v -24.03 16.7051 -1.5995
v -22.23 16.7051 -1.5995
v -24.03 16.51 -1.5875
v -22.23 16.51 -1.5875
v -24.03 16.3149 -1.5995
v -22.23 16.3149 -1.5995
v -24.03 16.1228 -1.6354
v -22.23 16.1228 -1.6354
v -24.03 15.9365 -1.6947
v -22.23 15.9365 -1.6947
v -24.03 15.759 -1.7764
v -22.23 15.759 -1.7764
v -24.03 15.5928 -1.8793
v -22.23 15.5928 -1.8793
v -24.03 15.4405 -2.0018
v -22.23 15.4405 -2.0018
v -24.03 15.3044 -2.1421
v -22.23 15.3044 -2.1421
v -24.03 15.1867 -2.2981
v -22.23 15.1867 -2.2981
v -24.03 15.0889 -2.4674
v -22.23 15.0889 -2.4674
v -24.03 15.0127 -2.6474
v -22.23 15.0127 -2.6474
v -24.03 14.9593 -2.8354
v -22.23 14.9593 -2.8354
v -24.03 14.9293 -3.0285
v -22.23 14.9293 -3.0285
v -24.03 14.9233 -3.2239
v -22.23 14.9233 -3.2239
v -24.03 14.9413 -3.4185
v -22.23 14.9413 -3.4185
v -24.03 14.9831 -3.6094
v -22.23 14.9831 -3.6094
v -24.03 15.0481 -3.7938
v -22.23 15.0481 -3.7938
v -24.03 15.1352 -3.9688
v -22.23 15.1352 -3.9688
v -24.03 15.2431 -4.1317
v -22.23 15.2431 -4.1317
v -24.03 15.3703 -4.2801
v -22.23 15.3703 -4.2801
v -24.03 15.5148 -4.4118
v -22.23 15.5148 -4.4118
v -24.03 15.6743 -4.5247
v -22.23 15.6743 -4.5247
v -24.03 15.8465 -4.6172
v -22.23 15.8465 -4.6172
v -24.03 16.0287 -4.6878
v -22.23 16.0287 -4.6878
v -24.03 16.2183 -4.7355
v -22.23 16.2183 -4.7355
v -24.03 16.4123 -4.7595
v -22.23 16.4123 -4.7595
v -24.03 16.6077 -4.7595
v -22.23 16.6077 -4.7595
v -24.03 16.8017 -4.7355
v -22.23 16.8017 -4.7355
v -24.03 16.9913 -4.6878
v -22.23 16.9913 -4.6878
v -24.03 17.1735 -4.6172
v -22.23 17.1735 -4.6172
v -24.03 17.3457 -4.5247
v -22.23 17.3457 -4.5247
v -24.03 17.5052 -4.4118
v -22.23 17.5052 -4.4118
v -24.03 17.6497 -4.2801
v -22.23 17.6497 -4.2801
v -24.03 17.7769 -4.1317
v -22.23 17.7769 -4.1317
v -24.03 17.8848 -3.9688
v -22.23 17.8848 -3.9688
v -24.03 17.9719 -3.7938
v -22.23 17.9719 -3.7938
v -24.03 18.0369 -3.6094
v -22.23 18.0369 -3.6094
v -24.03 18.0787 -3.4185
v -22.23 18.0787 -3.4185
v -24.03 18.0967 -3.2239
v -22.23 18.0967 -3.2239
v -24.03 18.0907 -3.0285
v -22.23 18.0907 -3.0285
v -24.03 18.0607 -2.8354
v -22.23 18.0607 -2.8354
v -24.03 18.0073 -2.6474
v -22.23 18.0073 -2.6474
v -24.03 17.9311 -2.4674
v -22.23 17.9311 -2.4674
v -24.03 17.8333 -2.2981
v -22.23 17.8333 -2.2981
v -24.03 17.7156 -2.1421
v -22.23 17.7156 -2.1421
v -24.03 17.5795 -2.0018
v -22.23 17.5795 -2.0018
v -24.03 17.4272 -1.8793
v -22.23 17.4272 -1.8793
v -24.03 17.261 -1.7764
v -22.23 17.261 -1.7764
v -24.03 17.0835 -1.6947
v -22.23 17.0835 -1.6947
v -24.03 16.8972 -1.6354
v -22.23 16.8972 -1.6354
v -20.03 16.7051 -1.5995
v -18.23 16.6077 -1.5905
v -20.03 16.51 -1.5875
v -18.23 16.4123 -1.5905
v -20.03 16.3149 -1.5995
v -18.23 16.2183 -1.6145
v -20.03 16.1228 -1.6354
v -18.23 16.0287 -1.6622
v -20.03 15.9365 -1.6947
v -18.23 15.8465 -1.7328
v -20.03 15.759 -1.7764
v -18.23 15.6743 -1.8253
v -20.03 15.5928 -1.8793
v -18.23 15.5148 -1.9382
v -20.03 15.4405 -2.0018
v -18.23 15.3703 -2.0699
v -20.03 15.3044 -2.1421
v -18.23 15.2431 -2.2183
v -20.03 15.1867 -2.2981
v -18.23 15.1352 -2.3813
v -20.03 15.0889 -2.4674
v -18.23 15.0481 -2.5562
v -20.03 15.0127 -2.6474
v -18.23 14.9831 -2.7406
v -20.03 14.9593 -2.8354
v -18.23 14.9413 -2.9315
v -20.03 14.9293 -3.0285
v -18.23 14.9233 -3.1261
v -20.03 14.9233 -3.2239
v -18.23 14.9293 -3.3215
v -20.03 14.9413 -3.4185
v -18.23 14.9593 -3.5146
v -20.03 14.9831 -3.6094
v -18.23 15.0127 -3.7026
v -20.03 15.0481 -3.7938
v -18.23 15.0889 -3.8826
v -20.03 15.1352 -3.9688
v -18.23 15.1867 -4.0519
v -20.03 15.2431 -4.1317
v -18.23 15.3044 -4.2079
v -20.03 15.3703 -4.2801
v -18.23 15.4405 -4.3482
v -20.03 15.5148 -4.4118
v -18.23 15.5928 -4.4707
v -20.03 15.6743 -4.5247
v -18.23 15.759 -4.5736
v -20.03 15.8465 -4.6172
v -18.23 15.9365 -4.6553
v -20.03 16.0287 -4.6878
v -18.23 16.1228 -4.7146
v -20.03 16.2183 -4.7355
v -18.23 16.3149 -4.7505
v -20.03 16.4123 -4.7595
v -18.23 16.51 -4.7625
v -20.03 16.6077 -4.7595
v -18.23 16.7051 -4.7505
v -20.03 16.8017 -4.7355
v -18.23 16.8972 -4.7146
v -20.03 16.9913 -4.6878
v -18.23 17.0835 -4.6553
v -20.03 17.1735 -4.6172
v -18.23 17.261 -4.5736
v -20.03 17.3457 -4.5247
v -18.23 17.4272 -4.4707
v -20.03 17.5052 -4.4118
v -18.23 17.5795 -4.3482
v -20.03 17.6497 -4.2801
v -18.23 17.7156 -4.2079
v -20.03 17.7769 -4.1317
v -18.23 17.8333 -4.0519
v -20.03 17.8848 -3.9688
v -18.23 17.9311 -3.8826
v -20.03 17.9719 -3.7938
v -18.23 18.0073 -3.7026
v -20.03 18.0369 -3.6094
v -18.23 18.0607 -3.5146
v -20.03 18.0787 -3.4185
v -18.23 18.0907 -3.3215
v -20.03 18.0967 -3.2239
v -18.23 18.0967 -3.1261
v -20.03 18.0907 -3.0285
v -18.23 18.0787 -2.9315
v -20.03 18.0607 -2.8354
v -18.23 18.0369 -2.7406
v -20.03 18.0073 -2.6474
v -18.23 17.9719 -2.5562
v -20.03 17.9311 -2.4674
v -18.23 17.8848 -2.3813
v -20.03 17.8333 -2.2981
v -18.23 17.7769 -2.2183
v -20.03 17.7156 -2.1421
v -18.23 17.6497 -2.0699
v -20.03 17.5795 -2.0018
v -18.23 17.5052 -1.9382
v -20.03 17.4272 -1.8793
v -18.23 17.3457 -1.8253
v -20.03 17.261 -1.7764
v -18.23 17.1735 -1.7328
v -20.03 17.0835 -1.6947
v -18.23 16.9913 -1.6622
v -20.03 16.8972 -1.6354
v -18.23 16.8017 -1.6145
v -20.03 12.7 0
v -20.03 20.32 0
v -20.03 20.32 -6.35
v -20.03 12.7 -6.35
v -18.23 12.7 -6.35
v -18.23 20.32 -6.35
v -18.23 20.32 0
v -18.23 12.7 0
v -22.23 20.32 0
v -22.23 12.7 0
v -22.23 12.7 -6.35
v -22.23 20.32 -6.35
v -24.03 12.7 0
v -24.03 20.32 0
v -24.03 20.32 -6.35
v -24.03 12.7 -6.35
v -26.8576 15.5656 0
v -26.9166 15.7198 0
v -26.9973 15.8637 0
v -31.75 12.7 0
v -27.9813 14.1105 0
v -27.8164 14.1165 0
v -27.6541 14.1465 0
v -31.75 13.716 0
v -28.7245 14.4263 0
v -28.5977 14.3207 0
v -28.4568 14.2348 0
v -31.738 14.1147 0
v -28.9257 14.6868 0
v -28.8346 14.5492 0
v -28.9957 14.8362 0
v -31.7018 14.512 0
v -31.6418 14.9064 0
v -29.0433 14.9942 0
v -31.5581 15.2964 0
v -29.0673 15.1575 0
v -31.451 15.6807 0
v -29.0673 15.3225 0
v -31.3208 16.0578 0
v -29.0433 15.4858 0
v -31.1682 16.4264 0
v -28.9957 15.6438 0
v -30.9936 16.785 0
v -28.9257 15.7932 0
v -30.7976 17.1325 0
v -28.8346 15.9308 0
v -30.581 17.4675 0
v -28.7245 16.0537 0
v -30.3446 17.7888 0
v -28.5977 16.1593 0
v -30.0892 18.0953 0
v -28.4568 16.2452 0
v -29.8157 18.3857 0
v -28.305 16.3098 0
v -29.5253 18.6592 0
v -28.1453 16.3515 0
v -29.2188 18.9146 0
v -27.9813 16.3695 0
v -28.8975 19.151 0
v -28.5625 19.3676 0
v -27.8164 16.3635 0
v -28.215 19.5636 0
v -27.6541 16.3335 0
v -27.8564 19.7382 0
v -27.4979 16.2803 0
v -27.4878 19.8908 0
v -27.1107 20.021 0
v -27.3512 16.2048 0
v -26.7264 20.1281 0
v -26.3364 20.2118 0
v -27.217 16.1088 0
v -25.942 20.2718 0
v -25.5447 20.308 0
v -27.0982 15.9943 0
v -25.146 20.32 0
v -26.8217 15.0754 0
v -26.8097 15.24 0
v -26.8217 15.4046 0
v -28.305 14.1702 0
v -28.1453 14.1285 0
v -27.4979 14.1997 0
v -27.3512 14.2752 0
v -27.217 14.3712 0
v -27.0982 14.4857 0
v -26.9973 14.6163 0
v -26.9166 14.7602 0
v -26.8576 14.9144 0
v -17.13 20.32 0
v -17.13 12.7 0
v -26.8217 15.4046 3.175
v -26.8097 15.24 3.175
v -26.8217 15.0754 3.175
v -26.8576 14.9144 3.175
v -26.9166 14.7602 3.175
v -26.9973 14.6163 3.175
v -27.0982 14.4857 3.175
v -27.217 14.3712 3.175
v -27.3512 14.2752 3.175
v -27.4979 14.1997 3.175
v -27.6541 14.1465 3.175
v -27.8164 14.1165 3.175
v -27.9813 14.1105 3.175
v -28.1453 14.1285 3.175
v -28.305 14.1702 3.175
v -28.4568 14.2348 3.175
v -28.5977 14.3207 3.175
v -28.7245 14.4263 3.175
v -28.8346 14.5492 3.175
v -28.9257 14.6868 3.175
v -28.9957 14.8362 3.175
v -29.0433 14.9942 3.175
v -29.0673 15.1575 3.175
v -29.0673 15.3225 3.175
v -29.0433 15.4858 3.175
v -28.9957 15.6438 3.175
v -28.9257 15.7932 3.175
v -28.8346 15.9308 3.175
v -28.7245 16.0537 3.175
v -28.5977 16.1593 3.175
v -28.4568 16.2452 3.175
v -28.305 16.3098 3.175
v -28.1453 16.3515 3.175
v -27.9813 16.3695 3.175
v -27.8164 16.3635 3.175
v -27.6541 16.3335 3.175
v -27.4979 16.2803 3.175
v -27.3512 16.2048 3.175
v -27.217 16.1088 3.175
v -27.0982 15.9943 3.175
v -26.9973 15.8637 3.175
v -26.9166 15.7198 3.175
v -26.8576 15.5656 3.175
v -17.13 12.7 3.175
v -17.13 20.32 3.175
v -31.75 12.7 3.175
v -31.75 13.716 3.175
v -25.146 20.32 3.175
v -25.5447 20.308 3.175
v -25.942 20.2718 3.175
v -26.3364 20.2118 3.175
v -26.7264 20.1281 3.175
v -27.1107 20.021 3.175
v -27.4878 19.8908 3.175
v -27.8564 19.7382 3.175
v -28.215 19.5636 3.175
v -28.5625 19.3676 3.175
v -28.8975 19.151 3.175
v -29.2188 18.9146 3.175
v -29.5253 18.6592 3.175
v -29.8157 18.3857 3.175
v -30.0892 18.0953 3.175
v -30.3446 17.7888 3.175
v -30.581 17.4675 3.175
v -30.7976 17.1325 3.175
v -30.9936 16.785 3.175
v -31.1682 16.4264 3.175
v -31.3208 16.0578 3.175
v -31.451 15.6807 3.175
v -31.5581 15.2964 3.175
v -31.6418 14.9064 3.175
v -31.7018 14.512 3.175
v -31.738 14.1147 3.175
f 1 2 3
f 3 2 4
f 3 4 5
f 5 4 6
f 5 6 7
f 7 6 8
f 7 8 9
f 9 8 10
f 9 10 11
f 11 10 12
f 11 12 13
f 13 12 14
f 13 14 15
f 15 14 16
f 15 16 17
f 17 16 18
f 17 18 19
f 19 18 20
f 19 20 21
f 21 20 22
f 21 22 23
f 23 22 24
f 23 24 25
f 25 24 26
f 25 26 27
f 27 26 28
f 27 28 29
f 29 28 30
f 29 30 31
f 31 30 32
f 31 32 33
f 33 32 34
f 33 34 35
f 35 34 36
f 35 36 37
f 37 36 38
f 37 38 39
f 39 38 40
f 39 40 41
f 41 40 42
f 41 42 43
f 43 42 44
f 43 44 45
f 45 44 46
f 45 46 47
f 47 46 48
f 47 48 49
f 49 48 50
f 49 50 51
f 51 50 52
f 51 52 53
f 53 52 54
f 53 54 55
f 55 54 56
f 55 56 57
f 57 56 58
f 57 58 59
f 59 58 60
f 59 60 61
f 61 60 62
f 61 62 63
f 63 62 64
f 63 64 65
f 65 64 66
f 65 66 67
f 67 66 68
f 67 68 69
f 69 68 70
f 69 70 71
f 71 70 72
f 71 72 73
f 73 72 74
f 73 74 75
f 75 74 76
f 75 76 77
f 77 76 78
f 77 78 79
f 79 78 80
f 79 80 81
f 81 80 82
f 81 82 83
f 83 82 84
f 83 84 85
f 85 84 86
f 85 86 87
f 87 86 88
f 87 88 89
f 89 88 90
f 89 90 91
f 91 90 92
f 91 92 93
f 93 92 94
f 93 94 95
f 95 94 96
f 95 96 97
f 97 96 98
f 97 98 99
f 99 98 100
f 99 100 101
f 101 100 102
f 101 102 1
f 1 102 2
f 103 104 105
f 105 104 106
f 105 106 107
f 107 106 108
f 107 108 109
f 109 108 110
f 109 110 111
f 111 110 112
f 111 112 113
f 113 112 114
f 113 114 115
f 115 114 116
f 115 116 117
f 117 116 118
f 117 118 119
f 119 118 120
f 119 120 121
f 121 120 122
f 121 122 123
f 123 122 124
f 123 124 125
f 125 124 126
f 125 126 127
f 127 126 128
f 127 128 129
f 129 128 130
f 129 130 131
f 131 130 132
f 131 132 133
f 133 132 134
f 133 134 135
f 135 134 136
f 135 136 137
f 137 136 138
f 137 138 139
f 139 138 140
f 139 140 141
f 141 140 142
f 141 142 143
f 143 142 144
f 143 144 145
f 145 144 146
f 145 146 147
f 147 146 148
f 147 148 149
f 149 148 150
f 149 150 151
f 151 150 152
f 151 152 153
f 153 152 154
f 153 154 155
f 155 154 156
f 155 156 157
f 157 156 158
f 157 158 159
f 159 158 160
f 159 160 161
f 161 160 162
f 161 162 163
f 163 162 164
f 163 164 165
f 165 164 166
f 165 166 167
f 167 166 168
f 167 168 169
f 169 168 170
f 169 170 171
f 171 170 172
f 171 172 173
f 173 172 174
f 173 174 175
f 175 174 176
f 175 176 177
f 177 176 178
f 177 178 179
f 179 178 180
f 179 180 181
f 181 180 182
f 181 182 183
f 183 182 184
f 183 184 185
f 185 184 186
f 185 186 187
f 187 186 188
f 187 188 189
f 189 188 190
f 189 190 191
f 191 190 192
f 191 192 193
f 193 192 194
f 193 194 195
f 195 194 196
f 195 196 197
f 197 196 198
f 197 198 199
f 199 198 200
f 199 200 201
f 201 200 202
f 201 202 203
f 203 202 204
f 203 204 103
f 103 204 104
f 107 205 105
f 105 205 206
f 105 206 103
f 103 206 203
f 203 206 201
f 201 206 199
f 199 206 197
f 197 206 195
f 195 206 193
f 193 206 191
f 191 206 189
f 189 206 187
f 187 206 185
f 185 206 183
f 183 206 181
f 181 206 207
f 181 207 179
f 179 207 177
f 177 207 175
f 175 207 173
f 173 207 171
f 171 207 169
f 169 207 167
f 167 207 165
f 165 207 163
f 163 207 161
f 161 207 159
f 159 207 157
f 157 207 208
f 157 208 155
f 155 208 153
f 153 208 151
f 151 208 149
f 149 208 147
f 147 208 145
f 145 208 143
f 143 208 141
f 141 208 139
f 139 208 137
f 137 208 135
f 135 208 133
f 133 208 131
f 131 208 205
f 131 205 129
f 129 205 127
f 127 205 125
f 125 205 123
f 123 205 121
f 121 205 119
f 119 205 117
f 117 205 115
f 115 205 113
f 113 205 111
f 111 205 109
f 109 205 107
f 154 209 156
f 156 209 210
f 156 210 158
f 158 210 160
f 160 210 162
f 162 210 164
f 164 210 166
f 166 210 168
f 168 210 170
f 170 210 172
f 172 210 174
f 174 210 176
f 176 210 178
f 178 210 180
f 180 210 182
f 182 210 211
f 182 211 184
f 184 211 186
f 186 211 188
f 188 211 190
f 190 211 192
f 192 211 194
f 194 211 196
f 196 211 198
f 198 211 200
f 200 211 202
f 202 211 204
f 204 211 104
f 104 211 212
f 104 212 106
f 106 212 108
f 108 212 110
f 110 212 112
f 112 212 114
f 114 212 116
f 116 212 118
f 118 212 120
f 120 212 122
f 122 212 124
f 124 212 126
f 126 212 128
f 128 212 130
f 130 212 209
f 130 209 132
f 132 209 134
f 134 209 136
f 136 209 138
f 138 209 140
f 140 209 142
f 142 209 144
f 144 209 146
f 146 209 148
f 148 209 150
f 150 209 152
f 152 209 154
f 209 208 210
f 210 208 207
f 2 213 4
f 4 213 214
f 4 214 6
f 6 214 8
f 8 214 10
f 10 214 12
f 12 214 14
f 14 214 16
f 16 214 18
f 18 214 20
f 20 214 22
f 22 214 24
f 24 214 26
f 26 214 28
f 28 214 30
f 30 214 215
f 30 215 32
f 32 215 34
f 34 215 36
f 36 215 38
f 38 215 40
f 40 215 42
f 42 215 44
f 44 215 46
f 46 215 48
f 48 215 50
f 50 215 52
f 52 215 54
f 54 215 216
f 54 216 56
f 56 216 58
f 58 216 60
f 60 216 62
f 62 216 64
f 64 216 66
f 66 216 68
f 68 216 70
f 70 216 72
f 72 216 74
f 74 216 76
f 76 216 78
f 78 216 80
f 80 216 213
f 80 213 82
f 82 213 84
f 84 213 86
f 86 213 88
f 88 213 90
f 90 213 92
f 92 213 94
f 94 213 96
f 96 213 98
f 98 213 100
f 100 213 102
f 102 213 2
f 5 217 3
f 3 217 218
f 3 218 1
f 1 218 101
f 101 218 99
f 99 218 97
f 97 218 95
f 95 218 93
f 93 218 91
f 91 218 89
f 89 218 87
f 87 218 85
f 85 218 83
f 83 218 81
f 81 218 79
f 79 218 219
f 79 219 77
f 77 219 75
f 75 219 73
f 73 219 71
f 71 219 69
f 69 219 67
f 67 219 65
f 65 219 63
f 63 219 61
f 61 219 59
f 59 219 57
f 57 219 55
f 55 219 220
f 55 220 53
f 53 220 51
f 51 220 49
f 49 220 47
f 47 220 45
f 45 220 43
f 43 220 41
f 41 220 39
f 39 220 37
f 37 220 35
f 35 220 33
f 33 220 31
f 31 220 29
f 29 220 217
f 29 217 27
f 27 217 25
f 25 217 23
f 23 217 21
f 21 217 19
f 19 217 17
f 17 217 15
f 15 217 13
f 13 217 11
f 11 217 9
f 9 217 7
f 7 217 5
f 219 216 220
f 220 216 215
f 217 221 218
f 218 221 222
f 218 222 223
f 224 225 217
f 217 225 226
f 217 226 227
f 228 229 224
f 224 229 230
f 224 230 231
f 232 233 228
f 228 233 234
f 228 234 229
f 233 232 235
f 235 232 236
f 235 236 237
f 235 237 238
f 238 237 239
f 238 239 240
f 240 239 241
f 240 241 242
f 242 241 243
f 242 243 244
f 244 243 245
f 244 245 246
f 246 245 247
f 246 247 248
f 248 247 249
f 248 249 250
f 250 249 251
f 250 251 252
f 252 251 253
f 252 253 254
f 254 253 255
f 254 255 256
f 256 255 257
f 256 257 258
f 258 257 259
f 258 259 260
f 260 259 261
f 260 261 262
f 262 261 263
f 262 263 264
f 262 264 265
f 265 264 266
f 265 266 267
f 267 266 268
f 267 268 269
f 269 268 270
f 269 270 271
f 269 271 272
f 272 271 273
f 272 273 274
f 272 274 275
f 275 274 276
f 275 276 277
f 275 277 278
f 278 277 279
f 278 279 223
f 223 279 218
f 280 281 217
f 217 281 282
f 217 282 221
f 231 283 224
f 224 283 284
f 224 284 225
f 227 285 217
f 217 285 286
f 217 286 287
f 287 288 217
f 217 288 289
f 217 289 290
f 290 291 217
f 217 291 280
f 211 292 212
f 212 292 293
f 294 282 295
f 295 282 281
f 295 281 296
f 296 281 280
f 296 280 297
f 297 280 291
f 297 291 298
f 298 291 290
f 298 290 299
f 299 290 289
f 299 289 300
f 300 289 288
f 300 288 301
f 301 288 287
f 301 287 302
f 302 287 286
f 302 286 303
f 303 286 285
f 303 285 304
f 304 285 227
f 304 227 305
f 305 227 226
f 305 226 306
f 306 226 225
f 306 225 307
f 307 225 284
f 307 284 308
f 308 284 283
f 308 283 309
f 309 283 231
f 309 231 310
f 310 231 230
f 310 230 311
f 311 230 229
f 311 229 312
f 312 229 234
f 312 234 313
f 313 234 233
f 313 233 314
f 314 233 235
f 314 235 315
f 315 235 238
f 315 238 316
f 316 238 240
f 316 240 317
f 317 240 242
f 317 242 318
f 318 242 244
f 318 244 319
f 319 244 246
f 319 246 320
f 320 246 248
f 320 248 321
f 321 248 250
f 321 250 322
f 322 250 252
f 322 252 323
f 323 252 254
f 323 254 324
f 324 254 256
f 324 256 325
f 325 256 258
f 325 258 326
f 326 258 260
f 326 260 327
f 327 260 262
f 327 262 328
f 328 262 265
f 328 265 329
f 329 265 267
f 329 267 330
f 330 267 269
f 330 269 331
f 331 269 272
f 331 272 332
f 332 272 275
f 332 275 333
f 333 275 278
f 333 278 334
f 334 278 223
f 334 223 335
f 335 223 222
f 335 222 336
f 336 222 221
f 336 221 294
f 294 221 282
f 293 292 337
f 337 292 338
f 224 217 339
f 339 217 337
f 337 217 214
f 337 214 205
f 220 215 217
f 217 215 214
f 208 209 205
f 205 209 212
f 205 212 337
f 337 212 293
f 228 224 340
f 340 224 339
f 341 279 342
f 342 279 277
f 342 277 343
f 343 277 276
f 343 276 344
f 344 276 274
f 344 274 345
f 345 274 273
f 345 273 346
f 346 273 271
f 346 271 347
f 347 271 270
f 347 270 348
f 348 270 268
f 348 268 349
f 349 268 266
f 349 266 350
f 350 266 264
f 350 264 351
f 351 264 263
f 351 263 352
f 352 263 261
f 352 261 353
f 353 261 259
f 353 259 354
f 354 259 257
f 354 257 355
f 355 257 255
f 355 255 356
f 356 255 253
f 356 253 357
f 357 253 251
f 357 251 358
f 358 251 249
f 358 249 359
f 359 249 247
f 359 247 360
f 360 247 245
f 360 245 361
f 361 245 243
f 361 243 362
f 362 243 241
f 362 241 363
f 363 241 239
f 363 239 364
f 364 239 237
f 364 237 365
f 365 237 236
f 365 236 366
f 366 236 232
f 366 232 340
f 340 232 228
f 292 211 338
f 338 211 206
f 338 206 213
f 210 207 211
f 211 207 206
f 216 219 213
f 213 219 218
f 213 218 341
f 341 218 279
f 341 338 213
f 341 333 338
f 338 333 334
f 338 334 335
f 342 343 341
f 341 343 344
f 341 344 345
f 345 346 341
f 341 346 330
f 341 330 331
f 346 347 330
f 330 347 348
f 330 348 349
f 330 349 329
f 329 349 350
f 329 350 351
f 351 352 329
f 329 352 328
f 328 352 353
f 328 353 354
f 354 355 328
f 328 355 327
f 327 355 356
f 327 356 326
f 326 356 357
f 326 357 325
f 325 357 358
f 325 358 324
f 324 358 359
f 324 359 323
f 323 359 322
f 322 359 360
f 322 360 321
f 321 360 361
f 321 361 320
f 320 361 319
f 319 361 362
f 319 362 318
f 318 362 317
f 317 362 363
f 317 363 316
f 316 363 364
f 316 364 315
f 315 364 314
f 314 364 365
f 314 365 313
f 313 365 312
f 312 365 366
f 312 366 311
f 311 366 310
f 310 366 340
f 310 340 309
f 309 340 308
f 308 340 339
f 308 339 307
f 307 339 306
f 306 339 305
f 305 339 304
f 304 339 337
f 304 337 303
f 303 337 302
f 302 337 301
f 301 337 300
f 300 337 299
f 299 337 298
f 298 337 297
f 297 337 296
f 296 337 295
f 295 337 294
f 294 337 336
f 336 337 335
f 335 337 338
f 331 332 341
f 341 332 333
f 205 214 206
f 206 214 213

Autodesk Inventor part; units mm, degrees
ref_plane "YZ Plane" through (0, 0, 0) normal (1, 0, 0) x (0, 1, 0)
ref_plane "XZ Plane" through (0, 0, 0) normal (0, 1, 0) x (-1, 0, 0)
ref_plane "XY Plane" through (0, 0, 0) normal (0, 0, 1) x (1, 0, 0)
ref_plane "Work Plane2" through (0, 0, 0) normal (0, 0, 1) x (1, 0, 0)
sketch "Sketch3" plane through (0, 0, 0) normal (0, 0, 1) x (1, 0, 0)
  line L0 (-24.13, 20.32) -> (-25.146, 20.32) projected
  arc A0 (-25.146, 20.32) -> (-31.75, 13.716) centre (-25.146, 13.716) ccw projected
  line L1 (-31.75, 13.716) -> (-31.75, 6.096) projected
  arc A1 (-25.146, 12.7) -> (-31.75, 6.096) centre (-25.146, 6.096) ccw projected
  line L2 (-24.13, 12.7) -> (-25.146, 12.7) projected
  line L3 (-24.13, 20.32) -> (-24.13, 12.7) construction
  circle A2 centre (-27.94, 15.24) radius 1.1303 projected
  line L4 (-24.13, 12.7) -> (-17.13, 12.7)
  line L5 (-17.13, 12.7) -> (-17.13, 20.32)
  line L6 (-17.13, 20.32) -> (-24.13, 20.32)
  line L7 (-24.13, 20.32) -> (-24.13, 20.2414)
  line L8 (-24.13, 12.7) -> (-31.75, 12.7)
  point P0 (0, 0)
  dimension "d0" = 7
extrude "Extrusion1" add sketch "Sketch3" along normal blind 3.175 contours L6 L5 L4 L2 L8 L1 A0 L0
sketch "Sketch4" plane through (0, 0, 0) normal (0, 0, -1) x (-1, 0, 0)
  line L0 (20.13, 20.32) -> (20.13, 12.7) construction
  line L1 (22.13, 12.7) -> (22.13, 20.32) construction
  line L2 (17.13, 20.32) -> (25.146, 20.32) projected
  line L3 (31.75, 12.7) -> (17.13, 12.7) projected
  line L4 (20.03, 20.32) -> (18.23, 20.32)
  line L5 (18.23, 20.32) -> (18.23, 12.7)
  line L6 (18.23, 12.7) -> (20.03, 12.7)
  line L7 (20.03, 12.7) -> (20.03, 20.32)
  line L8 (22.23, 20.32) -> (24.03, 20.32)
  line L9 (24.03, 20.32) -> (24.03, 12.7)
  line L10 (24.03, 12.7) -> (22.23, 12.7)
  line L11 (22.23, 12.7) -> (22.23, 20.32)
  line L12 (24.13, 20.32) -> (24.13, 12.7) construction
  point P0 (0, 0)
  dimension "d3" = 0.1
  dimension "d4" = 0.1
  dimension "d6" = 0.1
extrude "Extrusion2" add sketch "Sketch4" along normal blind 6.35 contours L2 L7 L3 L5 | L2 L9 L3 L11
sketch "Sketch5" plane through (-18.23, 12.7, 0) normal (1, 0, 0) x (0, 0, -1)
  line L0 (0, 1.016) -> (0, 0) projected
  line L1 (6.35, 0) -> (6.35, 7.62) projected
  line L2 (0, 0) -> (6.35, 7.62) construction
  circle A0 centre (3.175, 3.81) radius 1.5875
  point P0 (0, -12.7)
  dimension "d9" = 3.175
extrude "Extrusion3" cut sketch "Sketch5" against normal blind 9.75
properties part number "adapter2"
